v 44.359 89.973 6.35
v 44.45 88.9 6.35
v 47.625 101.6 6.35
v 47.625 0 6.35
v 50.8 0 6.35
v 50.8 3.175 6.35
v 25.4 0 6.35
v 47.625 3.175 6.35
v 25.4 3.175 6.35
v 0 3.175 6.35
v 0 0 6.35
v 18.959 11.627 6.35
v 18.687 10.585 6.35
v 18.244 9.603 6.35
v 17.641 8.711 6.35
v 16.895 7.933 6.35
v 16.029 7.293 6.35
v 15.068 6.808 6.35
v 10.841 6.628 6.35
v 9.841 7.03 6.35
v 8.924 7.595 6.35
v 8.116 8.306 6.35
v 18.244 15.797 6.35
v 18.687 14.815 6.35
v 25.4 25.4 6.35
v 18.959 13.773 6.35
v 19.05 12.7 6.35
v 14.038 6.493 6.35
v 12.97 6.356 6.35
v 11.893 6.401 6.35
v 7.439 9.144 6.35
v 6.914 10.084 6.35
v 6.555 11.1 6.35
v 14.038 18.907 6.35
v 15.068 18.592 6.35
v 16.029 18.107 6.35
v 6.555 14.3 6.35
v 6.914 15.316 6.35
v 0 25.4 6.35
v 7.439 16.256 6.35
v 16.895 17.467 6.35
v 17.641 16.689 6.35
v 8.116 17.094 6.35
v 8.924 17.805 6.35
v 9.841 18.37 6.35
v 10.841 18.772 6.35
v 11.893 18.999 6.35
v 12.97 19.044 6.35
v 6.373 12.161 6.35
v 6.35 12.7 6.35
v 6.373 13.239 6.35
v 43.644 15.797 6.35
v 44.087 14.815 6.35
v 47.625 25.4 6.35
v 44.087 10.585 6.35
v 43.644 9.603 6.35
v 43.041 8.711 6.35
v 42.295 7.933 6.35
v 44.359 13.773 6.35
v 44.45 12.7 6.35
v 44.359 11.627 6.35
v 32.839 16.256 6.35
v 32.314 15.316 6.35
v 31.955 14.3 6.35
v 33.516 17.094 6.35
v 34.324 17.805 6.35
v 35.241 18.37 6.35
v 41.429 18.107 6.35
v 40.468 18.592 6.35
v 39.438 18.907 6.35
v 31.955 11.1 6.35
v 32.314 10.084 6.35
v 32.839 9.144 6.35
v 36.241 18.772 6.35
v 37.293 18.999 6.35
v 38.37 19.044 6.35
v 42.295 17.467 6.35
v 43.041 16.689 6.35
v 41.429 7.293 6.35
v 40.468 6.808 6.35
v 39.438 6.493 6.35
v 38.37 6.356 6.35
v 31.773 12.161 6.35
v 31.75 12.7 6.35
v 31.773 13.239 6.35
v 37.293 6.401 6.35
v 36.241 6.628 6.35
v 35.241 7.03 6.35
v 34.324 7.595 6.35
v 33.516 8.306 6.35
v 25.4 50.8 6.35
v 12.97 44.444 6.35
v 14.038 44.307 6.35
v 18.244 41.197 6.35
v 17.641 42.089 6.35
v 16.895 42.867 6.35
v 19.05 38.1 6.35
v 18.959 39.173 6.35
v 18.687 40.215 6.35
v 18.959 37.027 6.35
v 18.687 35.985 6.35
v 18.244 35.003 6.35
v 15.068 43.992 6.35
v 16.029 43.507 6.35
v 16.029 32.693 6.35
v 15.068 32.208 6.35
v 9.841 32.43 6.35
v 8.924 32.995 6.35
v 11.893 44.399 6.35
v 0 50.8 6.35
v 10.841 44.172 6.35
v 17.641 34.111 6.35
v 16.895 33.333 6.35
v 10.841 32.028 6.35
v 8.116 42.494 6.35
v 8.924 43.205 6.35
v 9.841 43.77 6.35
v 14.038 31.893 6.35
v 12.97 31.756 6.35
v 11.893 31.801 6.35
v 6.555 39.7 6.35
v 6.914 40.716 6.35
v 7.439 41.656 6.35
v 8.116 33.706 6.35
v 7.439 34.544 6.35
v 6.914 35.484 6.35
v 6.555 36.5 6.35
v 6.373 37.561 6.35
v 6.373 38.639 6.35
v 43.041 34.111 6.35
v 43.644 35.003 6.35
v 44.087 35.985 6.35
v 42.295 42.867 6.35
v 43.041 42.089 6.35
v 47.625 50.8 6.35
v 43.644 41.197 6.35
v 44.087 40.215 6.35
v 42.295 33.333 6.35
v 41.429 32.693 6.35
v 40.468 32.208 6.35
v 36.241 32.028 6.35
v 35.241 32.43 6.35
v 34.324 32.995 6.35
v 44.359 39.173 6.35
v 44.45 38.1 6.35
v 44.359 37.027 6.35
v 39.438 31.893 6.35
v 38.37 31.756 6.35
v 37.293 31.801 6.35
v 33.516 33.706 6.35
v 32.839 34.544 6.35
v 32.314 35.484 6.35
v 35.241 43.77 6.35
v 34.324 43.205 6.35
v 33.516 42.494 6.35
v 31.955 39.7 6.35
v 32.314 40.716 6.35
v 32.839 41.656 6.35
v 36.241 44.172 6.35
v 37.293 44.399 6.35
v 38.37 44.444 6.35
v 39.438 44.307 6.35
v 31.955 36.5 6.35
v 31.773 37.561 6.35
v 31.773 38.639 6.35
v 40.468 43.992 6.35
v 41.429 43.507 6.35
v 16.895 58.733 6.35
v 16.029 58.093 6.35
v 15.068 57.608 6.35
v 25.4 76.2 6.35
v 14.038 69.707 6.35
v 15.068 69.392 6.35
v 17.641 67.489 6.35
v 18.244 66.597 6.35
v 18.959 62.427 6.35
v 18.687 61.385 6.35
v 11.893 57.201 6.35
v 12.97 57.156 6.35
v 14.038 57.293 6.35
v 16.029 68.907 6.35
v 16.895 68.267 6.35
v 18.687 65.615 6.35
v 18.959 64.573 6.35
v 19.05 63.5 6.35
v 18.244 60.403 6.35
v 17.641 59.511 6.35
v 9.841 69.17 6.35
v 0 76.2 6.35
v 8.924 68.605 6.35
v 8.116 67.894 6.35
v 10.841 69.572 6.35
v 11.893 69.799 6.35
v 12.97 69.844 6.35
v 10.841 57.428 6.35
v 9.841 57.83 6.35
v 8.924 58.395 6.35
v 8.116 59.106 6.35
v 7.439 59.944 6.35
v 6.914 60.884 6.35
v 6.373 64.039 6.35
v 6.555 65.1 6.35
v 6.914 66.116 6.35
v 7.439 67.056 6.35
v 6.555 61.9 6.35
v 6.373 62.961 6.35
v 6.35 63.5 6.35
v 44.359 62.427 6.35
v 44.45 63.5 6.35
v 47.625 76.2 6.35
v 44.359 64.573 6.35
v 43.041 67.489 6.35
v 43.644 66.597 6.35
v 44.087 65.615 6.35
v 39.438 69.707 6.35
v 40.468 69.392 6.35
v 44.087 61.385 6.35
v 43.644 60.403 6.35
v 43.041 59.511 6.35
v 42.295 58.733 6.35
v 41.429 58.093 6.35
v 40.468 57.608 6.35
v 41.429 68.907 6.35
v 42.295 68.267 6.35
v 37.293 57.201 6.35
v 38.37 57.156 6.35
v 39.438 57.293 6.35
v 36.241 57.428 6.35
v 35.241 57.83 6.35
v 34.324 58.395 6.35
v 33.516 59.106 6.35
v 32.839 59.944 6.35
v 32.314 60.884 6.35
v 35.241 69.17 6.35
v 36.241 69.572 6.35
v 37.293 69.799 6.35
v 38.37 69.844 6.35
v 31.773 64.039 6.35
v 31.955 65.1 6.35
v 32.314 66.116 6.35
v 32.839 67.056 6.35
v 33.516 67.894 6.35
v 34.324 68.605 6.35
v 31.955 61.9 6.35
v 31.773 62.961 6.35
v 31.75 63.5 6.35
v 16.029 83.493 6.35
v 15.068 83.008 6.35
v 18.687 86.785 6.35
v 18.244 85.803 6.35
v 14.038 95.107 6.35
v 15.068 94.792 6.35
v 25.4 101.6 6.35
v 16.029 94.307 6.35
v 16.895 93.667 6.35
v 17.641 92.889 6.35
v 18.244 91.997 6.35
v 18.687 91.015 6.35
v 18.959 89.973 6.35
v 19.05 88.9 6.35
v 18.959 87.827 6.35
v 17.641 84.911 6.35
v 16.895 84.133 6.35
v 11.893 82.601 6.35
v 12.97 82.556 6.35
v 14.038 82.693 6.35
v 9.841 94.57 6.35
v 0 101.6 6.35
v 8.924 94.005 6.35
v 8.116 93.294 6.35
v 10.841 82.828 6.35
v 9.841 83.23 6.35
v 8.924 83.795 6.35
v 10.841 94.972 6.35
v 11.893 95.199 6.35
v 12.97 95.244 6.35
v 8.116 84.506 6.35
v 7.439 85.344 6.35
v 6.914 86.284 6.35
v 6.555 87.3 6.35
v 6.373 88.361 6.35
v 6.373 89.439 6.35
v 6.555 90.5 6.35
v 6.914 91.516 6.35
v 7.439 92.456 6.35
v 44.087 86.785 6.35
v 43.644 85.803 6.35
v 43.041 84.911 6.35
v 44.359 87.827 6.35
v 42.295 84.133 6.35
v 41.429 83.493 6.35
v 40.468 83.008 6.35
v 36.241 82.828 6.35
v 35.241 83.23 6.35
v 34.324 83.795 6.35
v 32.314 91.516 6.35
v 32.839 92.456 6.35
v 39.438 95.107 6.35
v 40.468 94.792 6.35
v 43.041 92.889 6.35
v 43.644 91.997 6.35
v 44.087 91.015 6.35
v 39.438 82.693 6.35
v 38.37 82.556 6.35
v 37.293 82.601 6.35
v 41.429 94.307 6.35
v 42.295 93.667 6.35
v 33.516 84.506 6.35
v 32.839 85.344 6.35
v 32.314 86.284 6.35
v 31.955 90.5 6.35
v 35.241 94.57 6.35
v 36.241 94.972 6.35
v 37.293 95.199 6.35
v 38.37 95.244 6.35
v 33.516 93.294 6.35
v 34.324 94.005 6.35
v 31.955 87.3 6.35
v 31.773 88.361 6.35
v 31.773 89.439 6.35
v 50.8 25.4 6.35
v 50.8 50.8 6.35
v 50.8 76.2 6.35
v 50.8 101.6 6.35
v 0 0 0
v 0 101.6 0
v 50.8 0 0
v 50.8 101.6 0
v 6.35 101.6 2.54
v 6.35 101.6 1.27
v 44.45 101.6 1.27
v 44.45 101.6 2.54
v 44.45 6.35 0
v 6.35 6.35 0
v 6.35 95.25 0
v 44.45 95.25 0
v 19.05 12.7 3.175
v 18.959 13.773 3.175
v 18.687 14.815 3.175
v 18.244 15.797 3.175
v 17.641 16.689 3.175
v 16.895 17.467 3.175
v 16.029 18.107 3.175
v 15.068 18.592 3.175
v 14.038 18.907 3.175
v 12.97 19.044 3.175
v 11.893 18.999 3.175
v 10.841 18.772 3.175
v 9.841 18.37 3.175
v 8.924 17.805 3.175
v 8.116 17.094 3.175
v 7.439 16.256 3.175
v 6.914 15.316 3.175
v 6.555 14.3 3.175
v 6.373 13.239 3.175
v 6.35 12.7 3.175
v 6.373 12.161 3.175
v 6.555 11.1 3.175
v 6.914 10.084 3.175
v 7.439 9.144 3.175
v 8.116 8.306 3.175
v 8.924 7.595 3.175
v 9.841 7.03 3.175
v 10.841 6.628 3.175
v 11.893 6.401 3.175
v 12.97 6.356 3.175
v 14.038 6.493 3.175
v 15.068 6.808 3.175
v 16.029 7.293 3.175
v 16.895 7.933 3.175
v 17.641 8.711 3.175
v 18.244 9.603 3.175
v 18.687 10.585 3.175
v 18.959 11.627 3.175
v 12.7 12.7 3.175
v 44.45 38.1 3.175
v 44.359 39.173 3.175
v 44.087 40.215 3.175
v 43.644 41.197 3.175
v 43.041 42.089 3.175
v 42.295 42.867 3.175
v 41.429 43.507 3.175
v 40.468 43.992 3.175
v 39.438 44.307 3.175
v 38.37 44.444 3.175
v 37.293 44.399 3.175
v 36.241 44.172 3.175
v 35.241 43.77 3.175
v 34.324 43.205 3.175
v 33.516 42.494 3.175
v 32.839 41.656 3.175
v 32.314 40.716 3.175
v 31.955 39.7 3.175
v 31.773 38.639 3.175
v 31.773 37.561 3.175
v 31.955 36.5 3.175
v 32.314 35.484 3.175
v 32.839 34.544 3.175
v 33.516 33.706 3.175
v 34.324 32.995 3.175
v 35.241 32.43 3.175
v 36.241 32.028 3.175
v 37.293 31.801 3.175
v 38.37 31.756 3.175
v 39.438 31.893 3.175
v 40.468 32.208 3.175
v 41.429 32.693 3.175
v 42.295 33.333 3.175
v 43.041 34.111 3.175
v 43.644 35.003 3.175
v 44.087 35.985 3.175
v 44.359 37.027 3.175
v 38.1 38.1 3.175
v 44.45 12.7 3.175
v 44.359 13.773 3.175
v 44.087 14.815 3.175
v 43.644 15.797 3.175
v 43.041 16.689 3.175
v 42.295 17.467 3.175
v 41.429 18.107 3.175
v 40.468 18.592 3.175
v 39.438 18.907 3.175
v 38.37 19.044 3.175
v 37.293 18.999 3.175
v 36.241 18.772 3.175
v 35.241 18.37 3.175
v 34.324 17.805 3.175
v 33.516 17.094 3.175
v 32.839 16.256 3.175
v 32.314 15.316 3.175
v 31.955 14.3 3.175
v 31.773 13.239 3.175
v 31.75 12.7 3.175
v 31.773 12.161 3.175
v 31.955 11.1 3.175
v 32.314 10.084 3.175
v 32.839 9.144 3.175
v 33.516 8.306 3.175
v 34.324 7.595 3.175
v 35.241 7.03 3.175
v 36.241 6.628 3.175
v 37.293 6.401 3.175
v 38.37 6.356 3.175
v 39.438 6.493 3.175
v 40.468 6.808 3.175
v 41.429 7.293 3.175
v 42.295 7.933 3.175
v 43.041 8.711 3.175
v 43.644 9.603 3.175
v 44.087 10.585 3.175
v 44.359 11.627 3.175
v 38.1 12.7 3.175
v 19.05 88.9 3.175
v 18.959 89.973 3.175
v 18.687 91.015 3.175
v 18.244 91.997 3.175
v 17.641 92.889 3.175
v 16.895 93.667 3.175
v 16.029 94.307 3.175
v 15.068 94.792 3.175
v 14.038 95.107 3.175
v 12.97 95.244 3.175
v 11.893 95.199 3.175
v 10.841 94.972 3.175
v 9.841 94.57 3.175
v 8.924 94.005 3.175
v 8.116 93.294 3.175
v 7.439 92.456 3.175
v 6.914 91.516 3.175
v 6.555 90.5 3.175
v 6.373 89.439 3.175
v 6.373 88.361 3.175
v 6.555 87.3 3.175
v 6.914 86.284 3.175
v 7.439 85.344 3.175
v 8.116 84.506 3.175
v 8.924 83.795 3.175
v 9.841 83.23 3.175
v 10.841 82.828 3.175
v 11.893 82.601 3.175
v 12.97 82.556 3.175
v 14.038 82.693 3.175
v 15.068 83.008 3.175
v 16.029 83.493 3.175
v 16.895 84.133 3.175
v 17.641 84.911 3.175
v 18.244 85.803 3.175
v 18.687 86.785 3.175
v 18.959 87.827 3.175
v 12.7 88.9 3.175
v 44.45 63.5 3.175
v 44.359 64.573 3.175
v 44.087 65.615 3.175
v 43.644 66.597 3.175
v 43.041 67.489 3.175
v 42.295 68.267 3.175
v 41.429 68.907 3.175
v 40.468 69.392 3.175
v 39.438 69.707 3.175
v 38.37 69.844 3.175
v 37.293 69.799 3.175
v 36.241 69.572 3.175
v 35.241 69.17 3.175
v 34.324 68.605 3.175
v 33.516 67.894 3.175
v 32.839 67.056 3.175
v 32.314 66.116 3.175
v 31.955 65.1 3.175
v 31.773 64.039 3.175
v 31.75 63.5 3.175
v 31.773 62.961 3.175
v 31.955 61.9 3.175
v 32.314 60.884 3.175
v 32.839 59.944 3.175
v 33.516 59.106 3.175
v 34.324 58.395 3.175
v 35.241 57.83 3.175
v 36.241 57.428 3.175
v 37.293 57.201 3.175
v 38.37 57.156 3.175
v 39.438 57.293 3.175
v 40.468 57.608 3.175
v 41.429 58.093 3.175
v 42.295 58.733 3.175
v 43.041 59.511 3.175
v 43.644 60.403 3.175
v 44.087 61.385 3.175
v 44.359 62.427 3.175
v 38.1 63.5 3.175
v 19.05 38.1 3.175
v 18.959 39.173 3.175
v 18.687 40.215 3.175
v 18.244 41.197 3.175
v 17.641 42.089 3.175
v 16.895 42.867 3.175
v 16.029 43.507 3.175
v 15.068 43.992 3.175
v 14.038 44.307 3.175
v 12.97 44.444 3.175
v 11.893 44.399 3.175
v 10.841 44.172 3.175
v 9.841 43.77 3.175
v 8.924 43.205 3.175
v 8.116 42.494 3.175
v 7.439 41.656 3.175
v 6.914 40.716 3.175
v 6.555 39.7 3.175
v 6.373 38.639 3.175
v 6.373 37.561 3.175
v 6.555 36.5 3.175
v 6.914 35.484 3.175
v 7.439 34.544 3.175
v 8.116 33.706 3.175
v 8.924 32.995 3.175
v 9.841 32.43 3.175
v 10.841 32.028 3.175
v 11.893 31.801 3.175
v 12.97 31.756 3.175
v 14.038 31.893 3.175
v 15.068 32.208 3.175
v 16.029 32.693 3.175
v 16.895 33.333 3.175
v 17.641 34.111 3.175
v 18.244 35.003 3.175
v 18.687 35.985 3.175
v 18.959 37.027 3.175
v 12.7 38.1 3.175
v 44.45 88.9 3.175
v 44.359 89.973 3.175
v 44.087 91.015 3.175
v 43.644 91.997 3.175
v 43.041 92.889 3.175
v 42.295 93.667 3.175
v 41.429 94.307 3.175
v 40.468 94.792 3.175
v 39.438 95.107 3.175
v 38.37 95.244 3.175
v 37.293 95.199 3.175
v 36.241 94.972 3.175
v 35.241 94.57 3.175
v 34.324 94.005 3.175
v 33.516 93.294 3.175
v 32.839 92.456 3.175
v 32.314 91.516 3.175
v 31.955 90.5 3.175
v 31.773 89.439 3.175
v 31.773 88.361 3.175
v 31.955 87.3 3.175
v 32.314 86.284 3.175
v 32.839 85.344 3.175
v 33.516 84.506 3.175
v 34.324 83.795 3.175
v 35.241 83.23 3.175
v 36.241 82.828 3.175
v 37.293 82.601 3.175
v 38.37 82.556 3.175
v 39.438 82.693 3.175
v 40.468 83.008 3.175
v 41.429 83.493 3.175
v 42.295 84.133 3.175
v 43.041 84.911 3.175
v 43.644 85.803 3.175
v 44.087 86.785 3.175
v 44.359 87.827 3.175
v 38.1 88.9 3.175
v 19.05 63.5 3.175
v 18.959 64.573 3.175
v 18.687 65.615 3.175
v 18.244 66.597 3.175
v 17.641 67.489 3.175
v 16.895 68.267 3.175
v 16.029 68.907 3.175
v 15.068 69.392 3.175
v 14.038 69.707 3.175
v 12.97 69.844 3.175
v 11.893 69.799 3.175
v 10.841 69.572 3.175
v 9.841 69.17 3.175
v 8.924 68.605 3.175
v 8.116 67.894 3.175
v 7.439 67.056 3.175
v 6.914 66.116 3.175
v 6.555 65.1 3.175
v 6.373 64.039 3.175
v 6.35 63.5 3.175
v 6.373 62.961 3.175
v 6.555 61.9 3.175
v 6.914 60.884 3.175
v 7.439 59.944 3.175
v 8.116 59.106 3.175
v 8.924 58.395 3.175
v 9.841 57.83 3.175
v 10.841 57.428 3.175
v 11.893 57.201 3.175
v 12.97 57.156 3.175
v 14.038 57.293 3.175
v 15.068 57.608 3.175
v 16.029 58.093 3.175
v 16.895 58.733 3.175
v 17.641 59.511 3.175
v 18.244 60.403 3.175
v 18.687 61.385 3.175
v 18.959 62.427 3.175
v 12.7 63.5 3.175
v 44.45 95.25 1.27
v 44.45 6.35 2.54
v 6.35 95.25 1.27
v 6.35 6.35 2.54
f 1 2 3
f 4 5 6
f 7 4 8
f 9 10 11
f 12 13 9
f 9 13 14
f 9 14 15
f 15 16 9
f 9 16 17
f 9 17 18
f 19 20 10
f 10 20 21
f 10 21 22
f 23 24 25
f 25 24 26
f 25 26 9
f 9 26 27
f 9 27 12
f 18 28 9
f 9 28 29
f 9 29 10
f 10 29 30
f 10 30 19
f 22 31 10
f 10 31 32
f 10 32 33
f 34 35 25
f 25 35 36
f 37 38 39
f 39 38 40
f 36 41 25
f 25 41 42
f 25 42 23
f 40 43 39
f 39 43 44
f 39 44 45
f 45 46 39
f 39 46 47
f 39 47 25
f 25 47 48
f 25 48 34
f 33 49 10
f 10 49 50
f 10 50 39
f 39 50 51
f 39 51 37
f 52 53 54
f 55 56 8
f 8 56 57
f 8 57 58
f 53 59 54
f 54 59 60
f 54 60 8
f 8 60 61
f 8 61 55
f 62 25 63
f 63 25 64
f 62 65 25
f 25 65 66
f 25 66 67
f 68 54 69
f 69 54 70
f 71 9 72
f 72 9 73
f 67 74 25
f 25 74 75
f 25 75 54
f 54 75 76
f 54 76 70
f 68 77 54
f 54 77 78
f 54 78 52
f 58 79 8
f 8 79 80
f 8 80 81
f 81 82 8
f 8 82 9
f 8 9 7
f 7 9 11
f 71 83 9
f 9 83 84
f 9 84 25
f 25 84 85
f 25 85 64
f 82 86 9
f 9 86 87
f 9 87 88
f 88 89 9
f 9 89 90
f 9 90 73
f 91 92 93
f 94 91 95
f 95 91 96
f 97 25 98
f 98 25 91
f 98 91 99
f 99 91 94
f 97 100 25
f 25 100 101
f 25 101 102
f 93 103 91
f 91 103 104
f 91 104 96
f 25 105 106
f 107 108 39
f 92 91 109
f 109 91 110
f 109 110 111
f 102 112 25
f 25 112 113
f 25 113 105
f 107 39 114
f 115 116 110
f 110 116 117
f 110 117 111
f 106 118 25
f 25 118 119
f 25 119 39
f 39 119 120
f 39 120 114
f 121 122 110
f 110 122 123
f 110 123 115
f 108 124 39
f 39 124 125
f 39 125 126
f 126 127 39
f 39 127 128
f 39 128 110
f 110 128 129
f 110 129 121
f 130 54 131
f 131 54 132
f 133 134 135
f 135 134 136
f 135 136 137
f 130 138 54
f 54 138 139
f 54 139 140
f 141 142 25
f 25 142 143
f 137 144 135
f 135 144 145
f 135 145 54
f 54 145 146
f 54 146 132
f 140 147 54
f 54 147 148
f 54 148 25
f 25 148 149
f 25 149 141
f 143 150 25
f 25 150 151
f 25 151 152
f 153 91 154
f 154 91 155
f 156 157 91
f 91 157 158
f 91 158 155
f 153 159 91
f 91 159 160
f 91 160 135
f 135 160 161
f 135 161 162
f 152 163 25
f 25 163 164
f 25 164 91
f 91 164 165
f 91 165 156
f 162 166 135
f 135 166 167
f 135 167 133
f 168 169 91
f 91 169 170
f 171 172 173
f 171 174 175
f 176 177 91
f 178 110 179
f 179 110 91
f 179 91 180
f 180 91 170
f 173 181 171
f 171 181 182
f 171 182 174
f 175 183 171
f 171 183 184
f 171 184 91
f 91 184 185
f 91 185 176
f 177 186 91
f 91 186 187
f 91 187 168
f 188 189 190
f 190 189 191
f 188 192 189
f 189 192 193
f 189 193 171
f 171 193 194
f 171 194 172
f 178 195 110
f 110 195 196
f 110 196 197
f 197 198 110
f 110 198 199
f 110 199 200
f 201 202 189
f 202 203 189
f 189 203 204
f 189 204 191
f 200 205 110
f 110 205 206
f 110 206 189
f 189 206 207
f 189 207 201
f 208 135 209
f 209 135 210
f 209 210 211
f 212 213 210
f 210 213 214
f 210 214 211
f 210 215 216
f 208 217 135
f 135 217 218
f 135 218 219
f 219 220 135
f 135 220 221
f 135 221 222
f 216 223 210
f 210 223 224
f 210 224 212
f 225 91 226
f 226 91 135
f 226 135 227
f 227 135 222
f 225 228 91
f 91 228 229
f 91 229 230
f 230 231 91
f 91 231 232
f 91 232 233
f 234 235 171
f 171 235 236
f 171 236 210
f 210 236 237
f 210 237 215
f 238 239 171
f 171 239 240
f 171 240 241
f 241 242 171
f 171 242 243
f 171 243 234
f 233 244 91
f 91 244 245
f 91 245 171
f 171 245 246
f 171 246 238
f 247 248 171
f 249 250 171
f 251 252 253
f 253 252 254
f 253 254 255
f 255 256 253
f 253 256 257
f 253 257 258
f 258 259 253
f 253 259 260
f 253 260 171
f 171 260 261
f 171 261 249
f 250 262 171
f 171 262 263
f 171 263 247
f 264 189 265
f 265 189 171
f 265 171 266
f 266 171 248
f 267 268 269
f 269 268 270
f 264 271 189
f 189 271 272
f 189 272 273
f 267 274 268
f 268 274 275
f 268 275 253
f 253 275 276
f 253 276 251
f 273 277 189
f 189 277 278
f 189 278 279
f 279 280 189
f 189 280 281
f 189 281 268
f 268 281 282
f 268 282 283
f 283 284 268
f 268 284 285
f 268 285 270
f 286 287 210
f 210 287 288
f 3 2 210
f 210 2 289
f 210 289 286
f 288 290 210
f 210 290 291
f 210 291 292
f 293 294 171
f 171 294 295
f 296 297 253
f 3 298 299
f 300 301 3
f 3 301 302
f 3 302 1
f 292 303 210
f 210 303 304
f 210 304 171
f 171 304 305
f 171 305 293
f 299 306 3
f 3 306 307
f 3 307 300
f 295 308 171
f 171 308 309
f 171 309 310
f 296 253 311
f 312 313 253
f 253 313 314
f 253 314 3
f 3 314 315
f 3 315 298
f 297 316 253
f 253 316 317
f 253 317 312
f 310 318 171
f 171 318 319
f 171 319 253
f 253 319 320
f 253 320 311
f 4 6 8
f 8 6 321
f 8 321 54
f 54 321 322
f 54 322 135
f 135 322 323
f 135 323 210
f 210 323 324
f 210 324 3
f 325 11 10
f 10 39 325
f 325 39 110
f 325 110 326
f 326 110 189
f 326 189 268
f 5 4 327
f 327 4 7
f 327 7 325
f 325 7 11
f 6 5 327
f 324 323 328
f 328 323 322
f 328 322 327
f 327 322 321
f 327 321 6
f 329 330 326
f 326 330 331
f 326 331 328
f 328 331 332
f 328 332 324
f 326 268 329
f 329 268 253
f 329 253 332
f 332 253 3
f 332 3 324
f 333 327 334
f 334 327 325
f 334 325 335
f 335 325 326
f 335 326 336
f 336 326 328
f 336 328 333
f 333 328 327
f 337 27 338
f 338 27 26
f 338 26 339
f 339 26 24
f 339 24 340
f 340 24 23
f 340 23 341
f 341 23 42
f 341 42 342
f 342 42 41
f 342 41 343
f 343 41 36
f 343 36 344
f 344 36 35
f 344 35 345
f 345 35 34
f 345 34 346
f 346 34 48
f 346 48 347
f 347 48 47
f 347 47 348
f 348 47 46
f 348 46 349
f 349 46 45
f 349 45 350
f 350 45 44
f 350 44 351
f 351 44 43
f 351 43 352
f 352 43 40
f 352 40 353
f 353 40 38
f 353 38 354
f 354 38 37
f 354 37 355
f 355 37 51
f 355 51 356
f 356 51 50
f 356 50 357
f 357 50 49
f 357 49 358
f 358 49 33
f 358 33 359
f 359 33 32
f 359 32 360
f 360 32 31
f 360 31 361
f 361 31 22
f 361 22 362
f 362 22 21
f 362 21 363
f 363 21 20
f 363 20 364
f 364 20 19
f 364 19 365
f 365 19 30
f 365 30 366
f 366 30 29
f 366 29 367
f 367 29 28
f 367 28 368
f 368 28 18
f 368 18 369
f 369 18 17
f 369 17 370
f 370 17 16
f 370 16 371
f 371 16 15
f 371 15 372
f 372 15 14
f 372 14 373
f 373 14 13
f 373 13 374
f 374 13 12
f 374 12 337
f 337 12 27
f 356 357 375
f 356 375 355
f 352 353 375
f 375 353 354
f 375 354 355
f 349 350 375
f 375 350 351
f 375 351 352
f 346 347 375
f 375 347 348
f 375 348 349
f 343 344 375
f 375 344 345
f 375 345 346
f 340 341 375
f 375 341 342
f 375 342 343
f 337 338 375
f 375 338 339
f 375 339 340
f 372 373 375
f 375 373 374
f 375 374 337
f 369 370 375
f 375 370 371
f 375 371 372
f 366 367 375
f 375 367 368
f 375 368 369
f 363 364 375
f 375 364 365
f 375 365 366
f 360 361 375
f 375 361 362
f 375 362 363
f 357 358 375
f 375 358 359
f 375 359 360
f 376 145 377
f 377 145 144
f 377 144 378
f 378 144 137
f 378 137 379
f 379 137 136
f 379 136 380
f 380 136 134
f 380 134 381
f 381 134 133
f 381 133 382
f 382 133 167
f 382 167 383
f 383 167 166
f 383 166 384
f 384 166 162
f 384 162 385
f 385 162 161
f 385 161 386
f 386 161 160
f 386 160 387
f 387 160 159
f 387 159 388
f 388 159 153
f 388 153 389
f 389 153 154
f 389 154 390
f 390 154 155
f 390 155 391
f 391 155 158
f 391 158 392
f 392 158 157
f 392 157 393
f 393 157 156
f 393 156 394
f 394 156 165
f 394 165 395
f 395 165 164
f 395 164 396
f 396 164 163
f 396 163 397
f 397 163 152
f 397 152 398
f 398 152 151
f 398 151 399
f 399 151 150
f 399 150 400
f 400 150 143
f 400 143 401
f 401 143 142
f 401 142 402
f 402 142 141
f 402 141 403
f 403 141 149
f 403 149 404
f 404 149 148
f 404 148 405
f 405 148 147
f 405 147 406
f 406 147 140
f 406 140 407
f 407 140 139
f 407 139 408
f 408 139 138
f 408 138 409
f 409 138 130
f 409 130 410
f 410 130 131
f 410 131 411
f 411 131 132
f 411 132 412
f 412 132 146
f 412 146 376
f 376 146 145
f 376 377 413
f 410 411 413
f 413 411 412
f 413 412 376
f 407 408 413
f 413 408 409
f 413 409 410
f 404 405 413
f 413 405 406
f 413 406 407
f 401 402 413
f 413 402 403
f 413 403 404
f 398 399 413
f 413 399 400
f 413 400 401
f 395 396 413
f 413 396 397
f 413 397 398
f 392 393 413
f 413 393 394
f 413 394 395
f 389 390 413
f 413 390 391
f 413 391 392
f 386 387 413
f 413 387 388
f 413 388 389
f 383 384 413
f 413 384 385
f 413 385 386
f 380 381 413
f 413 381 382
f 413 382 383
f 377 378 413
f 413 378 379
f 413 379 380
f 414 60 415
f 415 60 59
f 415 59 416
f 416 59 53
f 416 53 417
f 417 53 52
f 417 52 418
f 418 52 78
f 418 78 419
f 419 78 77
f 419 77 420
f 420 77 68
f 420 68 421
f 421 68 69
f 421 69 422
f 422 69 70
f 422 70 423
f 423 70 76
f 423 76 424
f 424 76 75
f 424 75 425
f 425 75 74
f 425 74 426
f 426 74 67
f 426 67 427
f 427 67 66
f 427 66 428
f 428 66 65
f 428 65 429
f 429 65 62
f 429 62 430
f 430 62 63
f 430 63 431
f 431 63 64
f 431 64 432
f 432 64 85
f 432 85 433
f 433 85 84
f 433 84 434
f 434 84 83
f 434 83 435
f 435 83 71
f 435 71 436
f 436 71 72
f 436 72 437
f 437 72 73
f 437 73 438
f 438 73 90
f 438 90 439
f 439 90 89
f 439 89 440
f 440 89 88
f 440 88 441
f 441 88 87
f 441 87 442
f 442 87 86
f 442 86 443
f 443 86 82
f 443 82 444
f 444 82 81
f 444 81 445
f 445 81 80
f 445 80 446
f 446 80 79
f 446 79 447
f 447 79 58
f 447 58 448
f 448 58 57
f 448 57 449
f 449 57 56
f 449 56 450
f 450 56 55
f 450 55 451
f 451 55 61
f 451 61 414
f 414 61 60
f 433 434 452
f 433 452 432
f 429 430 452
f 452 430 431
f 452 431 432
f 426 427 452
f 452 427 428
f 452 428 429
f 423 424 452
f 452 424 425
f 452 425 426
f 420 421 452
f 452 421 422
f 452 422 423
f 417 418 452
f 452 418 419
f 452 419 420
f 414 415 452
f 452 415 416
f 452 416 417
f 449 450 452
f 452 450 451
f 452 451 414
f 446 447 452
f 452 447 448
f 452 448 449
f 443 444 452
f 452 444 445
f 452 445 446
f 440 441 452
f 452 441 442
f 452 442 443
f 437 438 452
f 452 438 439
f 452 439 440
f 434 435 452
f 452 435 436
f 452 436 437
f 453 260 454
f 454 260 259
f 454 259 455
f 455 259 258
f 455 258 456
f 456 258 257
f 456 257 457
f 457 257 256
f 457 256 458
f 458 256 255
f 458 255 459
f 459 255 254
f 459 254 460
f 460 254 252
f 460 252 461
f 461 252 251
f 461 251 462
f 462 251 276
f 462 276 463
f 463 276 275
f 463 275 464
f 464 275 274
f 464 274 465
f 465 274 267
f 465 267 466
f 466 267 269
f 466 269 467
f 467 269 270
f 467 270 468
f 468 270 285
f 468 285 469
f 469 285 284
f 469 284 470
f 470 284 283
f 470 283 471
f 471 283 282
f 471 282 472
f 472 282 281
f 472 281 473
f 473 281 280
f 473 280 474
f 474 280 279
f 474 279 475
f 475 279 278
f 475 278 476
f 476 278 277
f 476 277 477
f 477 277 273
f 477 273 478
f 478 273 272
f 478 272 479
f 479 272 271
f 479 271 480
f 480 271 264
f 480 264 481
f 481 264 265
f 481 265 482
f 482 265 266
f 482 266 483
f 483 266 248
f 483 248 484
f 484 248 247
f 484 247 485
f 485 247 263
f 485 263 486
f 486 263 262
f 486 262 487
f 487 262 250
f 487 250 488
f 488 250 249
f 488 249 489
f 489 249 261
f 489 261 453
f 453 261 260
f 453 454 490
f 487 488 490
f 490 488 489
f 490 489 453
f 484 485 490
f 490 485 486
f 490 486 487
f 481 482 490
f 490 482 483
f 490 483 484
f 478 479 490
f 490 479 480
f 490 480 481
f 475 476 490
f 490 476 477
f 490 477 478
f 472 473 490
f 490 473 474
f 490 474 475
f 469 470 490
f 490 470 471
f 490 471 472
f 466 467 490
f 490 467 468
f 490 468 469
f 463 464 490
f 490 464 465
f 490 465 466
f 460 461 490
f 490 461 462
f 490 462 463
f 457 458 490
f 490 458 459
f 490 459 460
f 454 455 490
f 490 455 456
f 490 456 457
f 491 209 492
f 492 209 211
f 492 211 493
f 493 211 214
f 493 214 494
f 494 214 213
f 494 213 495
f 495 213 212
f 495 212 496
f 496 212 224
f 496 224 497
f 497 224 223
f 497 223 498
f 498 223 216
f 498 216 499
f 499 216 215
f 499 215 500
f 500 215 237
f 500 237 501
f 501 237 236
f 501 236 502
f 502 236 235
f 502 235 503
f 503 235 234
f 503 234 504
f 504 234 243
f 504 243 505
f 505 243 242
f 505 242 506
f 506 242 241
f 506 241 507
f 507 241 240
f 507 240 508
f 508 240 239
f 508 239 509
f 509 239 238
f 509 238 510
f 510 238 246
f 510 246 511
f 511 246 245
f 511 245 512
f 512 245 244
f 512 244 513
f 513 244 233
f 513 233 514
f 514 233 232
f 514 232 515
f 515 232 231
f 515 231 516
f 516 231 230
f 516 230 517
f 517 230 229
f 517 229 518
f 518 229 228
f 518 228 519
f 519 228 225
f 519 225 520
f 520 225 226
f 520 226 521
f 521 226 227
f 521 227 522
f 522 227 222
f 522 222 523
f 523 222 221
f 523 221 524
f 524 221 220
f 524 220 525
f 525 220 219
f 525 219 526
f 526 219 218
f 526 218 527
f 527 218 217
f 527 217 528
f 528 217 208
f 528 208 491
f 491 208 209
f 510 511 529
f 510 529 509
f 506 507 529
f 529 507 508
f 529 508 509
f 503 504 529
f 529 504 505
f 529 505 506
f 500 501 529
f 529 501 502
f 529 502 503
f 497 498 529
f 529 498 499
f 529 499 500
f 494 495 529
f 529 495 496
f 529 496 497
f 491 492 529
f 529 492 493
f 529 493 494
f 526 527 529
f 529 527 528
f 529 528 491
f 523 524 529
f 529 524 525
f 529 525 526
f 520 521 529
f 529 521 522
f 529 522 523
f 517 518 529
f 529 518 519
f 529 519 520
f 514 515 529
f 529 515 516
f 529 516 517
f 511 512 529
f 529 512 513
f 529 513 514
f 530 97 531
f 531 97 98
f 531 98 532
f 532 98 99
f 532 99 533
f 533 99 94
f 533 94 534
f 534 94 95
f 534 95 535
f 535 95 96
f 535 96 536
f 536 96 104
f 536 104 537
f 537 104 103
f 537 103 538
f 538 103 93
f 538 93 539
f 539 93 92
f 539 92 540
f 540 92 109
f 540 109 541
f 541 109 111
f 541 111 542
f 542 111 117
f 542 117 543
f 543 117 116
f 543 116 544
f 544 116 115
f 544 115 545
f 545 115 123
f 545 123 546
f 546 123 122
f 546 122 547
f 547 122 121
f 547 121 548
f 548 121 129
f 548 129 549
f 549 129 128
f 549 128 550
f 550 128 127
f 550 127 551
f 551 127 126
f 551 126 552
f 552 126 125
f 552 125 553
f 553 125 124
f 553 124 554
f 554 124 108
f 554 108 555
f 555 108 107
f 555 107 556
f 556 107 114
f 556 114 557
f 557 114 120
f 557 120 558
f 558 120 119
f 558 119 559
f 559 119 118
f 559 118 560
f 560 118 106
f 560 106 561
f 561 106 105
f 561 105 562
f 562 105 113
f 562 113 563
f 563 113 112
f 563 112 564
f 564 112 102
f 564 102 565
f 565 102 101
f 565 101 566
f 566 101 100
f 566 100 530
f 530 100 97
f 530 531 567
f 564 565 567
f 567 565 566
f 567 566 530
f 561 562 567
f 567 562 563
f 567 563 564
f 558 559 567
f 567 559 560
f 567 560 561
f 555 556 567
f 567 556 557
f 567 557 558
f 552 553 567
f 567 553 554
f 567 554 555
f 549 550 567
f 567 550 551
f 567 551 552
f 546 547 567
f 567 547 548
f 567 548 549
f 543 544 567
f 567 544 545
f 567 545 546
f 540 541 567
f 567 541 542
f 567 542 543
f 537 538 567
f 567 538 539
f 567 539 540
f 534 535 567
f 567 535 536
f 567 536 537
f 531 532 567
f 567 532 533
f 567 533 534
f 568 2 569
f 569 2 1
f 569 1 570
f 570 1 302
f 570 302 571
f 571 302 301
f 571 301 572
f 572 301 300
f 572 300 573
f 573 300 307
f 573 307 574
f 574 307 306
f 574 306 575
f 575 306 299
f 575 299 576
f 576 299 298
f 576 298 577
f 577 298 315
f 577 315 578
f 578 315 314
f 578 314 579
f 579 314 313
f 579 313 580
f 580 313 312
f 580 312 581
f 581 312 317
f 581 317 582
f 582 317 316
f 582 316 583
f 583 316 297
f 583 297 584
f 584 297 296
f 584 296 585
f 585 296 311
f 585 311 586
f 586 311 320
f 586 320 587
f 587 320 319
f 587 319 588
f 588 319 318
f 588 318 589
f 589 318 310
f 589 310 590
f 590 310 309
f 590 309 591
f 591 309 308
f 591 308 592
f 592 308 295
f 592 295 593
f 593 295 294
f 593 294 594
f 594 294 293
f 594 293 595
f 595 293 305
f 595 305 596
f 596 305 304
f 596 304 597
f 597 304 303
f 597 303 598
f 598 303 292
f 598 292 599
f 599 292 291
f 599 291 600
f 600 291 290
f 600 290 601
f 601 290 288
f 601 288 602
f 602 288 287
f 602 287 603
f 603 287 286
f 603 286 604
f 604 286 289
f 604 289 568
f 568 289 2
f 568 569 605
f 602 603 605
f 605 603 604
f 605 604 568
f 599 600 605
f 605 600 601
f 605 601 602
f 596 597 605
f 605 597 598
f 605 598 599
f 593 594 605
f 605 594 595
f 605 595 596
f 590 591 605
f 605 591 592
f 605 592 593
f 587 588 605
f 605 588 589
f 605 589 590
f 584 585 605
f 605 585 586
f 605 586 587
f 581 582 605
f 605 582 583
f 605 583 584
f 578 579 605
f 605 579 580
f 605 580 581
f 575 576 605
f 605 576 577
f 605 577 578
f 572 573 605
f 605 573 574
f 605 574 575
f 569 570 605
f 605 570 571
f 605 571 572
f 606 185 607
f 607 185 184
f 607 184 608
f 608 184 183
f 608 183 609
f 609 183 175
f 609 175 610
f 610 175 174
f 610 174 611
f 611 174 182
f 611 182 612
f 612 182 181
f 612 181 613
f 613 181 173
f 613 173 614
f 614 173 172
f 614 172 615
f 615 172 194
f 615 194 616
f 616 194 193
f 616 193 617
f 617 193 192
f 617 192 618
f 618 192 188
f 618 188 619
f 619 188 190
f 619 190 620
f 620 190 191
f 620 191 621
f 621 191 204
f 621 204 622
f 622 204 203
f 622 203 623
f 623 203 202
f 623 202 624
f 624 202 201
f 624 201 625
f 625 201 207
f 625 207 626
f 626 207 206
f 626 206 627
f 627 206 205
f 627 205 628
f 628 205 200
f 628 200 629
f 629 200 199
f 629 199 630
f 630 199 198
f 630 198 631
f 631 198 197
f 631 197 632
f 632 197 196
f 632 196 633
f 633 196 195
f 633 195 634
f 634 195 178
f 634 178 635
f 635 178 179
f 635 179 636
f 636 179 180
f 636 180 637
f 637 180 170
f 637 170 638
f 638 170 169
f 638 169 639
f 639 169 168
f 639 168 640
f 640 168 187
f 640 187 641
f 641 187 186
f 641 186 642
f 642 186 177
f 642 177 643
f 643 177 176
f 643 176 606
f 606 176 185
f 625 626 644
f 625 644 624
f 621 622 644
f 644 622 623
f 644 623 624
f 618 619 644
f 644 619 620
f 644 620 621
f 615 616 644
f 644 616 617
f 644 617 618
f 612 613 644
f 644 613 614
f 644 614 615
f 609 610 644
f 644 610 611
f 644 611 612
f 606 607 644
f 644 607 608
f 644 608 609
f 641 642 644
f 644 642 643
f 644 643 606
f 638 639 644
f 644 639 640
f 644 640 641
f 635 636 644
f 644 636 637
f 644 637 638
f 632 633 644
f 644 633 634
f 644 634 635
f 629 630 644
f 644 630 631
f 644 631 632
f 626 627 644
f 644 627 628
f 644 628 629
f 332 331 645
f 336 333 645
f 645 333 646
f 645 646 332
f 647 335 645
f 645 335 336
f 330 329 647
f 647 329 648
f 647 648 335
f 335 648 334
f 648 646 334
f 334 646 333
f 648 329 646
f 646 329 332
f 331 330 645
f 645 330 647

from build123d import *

# Parameters (mm, degrees)
SKETCH1_W           = 50.8
SKETCH1_H           = 101.6
BOSS_EXTRUDE1_DEPTH = 6.35
SKETCH3_R           = 6.35
SKETCH3_R_2         = 2.54
CUT_EXTRUDE2_DEPTH  = 3.175
SKETCH4_W           = 38.1
SKETCH4_H           = 88.9
CUT_EXTRUDE3_DEPTH  = 2.54
CUT_EXTRUDE4_REACH  = 115.77
SKETCH5_W           = 38.1
SKETCH5_H           = 1.27


with BuildPart() as part:
    # Sketch1 → Boss-Extrude1 (new body)
    with BuildSketch(Plane.XY):
        with Locations((25.4, 50.8)):
            Rectangle(SKETCH1_W, SKETCH1_H)
    extrude(amount=BOSS_EXTRUDE1_DEPTH)

    # Sketch3 → Cut-Extrude2 (cut)
    with BuildSketch(Plane.XY.offset(6.35)):
        with Locations((12.7, 139.7)):
            Circle(SKETCH3_R)
        with Locations((38.1, 139.7)):
            Circle(SKETCH3_R)
        with Locations((63.5, 139.7)):
            Circle(SKETCH3_R_2)
        with Locations((88.9, 139.7)):
            Circle(SKETCH3_R_2)
        with Locations((88.9, 114.3)):
            Circle(SKETCH3_R_2)
        with Locations((63.5, 114.3)):
            Circle(SKETCH3_R_2)
        with Locations((38.1, 114.3)):
            Circle(SKETCH3_R)
        with Locations((12.7, 114.3)):
            Circle(SKETCH3_R)
        with Locations((88.9, 88.9)):
            Circle(SKETCH3_R_2)
        with Locations((63.5, 88.9)):
            Circle(SKETCH3_R_2)
        with Locations((38.1, 88.9)):
            Circle(SKETCH3_R)
        with Locations((12.7, 88.9)):
            Circle(SKETCH3_R)
        with Locations((88.9, 63.5)):
            Circle(SKETCH3_R_2)
        with Locations((63.5, 63.5)):
            Circle(SKETCH3_R_2)
        with Locations(Location((38.1, 63.5, 0), (0, 0, 180))):
            Circle(SKETCH3_R)
        with Locations(Location((12.7, 63.5, 0), (0, 0, 180))):
            Circle(SKETCH3_R)
        with Locations((88.9, 38.1)):
            Circle(SKETCH3_R_2)
        with Locations((63.5, 38.1)):
            Circle(SKETCH3_R_2)
        with Locations((38.1, 38.1)):
            Circle(SKETCH3_R)
        with Locations((12.7, 38.1)):
            Circle(SKETCH3_R)
        with Locations((88.9, 12.7)):
            Circle(SKETCH3_R_2)
        with Locations((63.5, 12.7)):
            Circle(SKETCH3_R_2)
        with Locations(Location((38.1, 12.7, 0), (0, 0, 180))):
            Circle(SKETCH3_R)
        with Locations(Location((12.7, 12.7, 0), (0, 0, 180))):
            Circle(SKETCH3_R)
    extrude(amount=-CUT_EXTRUDE2_DEPTH, mode=Mode.SUBTRACT)

    # Sketch4 → Cut-Extrude3 (cut)
    with BuildSketch(Plane(origin=(0, 0, 0), x_dir=(-1, 0, 0), z_dir=(0, 0, -1))):
        with Locations((-25.4, 50.8)):
            Rectangle(SKETCH4_W, SKETCH4_H)
    extrude(amount=-CUT_EXTRUDE3_DEPTH, mode=Mode.SUBTRACT)

    # Sketch5 → Cut-Extrude4 (cut, up to next)
    with BuildSketch(Plane(origin=(0, 101.6, 0), x_dir=(1, 0, 0), z_dir=(0, 1, 0)), mode=Mode.PRIVATE) as cut_extrude4_sk1:
        with Locations((25.4, -1.905)):
            Rectangle(SKETCH5_W, SKETCH5_H)
    cut_extrude4_tool1 = extrude(cut_extrude4_sk1.sketch, amount=-CUT_EXTRUDE4_REACH, mode=Mode.PRIVATE) & part.part
    add(cut_extrude4_tool1.solids().sort_by_distance((25.4, 101.6, 1.905))[0], mode=Mode.SUBTRACT)


solid = part.part
